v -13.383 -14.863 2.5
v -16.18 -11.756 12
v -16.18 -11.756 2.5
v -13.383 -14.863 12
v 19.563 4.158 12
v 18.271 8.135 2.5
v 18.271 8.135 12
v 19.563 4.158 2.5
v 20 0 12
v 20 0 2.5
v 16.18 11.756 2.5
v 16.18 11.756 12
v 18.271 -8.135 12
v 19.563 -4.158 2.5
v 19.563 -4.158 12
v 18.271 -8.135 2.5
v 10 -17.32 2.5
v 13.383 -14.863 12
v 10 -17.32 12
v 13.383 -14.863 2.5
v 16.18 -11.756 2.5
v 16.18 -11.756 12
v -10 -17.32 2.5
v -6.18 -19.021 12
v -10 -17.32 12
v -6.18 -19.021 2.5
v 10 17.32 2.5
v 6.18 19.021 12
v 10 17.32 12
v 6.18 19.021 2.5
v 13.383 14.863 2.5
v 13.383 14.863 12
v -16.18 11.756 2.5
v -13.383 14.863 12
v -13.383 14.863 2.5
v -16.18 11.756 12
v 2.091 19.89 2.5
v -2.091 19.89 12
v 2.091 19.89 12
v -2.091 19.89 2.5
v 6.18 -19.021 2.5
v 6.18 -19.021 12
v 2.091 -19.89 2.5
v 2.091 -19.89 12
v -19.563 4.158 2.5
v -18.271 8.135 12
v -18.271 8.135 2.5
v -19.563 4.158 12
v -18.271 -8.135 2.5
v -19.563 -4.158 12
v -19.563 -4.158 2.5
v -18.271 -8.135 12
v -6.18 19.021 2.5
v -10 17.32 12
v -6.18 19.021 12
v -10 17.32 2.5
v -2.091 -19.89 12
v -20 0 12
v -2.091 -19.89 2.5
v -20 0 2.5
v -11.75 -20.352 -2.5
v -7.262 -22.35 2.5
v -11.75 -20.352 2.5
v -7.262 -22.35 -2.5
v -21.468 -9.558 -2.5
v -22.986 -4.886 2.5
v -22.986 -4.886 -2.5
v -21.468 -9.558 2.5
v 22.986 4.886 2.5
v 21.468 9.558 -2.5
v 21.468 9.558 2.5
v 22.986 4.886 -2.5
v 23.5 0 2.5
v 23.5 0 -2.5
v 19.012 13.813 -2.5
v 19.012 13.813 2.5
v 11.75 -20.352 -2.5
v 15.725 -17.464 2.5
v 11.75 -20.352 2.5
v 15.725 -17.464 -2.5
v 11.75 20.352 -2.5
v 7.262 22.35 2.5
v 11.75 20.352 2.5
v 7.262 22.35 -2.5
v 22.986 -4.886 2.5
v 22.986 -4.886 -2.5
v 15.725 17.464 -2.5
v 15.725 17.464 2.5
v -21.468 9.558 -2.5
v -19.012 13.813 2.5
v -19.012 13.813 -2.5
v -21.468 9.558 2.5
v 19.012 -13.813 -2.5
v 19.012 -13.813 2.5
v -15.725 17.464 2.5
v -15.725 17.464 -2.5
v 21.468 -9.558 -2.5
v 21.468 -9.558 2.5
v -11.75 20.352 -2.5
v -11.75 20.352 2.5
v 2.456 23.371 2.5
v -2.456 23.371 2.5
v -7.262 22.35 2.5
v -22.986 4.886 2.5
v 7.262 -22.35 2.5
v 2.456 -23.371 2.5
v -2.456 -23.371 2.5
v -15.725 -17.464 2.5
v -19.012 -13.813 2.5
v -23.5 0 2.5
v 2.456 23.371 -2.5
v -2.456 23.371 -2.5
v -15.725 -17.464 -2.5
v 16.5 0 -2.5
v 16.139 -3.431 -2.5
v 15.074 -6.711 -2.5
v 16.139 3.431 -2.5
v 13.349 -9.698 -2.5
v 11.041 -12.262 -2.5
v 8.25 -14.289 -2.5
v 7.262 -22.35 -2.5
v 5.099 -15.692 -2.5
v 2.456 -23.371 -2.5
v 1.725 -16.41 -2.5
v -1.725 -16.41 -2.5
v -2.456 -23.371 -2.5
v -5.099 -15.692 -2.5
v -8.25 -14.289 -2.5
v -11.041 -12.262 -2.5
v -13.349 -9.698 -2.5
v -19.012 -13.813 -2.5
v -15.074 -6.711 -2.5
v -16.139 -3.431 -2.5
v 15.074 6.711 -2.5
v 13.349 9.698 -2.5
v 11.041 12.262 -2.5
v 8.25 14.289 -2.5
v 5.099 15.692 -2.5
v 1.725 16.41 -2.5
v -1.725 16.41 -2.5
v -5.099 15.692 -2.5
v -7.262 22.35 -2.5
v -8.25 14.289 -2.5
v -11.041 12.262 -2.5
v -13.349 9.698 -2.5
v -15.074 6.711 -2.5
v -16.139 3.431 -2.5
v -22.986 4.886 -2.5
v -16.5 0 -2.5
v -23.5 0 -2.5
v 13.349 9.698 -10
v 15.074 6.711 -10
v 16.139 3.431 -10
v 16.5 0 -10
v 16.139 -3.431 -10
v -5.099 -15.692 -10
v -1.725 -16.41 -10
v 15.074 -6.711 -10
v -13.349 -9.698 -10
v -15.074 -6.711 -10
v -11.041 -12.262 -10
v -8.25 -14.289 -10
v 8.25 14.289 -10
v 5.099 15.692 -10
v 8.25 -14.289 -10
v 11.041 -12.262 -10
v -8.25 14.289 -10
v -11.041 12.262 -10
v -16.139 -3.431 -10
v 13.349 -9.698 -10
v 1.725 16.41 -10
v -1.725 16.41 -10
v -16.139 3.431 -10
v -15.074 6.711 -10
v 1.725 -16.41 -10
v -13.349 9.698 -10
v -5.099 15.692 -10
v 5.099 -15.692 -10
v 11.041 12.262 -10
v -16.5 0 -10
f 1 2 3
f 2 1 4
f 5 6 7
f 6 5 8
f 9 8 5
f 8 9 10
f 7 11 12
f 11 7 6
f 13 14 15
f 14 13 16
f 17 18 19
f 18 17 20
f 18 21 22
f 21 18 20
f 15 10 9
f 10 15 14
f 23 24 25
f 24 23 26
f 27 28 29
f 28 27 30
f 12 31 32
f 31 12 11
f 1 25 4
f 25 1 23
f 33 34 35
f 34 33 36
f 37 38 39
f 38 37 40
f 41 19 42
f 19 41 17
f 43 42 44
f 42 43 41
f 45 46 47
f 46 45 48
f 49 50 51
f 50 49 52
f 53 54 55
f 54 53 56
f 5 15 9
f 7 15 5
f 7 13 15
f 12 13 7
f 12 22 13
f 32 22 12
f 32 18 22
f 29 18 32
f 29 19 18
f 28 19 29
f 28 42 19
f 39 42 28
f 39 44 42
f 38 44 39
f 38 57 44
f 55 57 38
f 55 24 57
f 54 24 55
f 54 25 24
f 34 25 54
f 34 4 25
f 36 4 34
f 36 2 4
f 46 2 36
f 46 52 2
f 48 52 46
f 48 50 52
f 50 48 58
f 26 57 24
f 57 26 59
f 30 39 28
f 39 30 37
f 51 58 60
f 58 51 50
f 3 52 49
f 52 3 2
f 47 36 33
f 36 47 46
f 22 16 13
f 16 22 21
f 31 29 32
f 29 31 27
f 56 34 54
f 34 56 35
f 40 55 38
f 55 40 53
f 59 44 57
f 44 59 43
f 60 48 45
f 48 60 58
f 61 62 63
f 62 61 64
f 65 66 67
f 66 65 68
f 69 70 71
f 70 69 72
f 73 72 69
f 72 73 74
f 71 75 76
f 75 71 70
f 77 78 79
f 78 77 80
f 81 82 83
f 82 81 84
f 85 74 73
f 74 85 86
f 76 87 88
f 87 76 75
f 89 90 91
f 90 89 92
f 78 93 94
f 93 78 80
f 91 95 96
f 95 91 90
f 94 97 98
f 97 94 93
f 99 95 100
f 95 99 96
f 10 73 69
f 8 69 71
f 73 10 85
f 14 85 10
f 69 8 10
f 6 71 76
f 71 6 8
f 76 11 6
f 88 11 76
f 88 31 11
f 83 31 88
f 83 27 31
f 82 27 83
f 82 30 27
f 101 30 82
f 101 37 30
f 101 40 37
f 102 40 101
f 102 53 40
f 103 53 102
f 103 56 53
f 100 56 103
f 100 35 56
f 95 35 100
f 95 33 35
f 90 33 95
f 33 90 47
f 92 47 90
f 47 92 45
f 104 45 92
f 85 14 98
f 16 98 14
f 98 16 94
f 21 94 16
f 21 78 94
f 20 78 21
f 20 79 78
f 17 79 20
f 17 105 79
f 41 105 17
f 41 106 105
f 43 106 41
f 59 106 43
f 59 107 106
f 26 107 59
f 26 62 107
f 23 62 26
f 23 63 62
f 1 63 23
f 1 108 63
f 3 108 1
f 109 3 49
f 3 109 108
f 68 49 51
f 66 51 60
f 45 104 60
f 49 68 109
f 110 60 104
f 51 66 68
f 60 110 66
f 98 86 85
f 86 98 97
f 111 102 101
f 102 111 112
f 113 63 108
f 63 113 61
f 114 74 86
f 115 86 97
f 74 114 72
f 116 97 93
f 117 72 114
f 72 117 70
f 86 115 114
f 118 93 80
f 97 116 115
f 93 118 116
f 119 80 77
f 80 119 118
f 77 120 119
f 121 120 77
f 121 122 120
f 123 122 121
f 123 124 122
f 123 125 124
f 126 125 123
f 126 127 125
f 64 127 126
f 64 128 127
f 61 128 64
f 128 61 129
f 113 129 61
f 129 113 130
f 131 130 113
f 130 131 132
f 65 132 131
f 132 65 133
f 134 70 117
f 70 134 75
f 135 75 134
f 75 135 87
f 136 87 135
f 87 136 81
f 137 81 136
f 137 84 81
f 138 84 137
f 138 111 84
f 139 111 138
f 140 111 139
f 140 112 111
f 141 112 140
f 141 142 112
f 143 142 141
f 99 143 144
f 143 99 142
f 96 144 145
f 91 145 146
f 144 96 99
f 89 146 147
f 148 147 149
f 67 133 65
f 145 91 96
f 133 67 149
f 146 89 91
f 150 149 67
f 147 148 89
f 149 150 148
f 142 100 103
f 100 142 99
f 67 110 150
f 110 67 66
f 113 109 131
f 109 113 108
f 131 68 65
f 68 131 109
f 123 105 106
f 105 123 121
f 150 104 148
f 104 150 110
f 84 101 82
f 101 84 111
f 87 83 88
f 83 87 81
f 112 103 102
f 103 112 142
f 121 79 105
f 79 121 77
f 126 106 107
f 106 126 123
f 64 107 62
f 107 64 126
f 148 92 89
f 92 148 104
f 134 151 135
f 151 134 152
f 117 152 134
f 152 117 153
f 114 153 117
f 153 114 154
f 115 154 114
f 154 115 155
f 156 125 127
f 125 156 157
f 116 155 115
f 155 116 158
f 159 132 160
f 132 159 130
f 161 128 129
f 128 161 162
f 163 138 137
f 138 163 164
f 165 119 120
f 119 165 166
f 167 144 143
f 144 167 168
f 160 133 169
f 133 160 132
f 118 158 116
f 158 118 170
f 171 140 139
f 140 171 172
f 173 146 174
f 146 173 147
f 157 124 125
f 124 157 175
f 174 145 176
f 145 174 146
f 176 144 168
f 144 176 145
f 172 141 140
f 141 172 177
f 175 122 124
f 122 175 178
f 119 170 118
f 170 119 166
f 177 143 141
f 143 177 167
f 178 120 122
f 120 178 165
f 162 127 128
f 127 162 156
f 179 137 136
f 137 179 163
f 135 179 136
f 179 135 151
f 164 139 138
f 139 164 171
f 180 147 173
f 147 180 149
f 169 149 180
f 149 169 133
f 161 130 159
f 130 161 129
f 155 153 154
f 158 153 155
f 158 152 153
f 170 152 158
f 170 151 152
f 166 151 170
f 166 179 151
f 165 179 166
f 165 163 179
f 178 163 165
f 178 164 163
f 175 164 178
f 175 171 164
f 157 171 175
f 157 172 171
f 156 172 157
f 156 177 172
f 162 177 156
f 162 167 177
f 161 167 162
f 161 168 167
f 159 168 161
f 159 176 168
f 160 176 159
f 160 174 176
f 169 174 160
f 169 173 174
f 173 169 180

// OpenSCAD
cylinder(d=40,h=12);
translate([0,0,-5/2]) cylinder(d=47,h=5);
translate([0,0,-5/2-15/2]) cylinder(d=33,h=15);
